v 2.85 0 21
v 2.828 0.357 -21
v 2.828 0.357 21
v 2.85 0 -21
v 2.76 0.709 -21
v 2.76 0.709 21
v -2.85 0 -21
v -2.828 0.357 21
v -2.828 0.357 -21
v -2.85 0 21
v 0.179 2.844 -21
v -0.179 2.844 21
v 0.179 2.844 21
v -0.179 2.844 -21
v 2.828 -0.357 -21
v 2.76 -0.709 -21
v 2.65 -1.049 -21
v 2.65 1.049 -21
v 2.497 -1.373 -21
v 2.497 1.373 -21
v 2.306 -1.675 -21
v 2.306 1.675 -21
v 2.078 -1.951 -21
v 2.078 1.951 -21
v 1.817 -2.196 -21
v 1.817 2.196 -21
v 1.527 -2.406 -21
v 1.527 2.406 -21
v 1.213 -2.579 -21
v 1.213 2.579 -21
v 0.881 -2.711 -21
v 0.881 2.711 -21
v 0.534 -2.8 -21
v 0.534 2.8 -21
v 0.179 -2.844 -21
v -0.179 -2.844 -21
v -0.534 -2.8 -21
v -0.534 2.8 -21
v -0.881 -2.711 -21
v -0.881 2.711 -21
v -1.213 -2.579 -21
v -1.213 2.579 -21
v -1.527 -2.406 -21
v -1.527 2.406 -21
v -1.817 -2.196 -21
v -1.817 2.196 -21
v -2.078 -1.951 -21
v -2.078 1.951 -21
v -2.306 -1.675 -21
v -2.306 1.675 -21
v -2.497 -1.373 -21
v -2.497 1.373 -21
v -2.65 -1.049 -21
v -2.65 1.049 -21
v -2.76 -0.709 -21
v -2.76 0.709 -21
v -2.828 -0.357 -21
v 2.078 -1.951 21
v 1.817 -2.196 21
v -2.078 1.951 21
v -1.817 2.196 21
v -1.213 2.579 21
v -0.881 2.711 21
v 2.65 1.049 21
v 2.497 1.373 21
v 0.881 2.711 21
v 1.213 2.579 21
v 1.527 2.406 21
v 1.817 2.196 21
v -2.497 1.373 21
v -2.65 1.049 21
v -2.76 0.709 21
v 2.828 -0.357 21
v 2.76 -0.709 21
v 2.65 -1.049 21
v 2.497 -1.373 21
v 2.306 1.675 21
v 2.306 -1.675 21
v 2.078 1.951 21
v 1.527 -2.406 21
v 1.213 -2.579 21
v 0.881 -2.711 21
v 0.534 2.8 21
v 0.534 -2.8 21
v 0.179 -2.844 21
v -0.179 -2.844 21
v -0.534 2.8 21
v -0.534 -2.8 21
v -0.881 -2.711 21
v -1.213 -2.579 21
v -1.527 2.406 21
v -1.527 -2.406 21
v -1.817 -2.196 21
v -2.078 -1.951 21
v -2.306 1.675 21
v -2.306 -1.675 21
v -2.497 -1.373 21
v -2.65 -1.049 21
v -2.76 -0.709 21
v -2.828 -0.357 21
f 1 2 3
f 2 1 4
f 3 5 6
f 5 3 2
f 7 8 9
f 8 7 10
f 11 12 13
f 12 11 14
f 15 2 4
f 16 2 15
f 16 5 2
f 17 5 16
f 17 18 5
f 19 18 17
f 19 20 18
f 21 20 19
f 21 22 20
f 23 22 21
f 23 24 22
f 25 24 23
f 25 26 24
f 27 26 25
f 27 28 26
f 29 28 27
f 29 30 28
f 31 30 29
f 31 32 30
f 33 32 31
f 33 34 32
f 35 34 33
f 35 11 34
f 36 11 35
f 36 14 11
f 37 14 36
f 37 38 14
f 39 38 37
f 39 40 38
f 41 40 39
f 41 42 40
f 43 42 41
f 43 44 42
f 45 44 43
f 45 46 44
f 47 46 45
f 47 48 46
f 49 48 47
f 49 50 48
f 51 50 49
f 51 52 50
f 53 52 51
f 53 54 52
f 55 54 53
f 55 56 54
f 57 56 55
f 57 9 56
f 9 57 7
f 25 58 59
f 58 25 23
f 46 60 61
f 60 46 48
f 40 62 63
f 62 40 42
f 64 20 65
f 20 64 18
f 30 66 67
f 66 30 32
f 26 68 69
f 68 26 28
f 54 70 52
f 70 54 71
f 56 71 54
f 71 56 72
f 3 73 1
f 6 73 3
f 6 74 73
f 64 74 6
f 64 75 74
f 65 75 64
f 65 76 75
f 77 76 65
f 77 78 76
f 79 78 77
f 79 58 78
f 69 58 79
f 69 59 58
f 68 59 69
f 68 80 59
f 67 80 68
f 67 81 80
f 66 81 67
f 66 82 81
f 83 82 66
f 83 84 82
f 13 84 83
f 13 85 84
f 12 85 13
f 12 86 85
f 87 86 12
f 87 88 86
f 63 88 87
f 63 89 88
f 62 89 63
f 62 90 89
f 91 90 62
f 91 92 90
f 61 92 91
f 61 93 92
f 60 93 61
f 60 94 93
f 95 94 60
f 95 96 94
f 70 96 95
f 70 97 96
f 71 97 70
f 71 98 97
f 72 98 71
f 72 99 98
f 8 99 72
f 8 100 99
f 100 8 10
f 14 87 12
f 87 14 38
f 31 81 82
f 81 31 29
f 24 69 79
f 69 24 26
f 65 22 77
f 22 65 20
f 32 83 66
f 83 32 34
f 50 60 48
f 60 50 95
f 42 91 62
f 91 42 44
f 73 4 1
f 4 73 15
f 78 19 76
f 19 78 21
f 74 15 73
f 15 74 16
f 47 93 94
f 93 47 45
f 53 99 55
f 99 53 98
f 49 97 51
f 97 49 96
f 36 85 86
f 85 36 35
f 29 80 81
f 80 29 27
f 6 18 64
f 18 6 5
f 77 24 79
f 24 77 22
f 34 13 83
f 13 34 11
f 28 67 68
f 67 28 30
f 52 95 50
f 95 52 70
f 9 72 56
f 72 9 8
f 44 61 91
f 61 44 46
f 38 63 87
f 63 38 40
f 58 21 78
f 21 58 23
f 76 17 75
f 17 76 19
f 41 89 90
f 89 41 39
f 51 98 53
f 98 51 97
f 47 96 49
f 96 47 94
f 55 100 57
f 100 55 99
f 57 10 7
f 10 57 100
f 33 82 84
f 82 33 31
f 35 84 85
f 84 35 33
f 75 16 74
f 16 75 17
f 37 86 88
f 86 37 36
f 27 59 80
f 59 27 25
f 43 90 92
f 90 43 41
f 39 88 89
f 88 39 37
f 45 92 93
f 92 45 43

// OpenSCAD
$fn = 50;


difference() {
	union() {
		translate(v = [0, 0, -21.0000000000]) {
			cylinder(h = 42, r = 2.8500000000);
		}
	}
	union() {
		translate(v = [0, 0, -100.0000000000]) {
			cylinder(h = 200, r = 0);
		}
	}
}
